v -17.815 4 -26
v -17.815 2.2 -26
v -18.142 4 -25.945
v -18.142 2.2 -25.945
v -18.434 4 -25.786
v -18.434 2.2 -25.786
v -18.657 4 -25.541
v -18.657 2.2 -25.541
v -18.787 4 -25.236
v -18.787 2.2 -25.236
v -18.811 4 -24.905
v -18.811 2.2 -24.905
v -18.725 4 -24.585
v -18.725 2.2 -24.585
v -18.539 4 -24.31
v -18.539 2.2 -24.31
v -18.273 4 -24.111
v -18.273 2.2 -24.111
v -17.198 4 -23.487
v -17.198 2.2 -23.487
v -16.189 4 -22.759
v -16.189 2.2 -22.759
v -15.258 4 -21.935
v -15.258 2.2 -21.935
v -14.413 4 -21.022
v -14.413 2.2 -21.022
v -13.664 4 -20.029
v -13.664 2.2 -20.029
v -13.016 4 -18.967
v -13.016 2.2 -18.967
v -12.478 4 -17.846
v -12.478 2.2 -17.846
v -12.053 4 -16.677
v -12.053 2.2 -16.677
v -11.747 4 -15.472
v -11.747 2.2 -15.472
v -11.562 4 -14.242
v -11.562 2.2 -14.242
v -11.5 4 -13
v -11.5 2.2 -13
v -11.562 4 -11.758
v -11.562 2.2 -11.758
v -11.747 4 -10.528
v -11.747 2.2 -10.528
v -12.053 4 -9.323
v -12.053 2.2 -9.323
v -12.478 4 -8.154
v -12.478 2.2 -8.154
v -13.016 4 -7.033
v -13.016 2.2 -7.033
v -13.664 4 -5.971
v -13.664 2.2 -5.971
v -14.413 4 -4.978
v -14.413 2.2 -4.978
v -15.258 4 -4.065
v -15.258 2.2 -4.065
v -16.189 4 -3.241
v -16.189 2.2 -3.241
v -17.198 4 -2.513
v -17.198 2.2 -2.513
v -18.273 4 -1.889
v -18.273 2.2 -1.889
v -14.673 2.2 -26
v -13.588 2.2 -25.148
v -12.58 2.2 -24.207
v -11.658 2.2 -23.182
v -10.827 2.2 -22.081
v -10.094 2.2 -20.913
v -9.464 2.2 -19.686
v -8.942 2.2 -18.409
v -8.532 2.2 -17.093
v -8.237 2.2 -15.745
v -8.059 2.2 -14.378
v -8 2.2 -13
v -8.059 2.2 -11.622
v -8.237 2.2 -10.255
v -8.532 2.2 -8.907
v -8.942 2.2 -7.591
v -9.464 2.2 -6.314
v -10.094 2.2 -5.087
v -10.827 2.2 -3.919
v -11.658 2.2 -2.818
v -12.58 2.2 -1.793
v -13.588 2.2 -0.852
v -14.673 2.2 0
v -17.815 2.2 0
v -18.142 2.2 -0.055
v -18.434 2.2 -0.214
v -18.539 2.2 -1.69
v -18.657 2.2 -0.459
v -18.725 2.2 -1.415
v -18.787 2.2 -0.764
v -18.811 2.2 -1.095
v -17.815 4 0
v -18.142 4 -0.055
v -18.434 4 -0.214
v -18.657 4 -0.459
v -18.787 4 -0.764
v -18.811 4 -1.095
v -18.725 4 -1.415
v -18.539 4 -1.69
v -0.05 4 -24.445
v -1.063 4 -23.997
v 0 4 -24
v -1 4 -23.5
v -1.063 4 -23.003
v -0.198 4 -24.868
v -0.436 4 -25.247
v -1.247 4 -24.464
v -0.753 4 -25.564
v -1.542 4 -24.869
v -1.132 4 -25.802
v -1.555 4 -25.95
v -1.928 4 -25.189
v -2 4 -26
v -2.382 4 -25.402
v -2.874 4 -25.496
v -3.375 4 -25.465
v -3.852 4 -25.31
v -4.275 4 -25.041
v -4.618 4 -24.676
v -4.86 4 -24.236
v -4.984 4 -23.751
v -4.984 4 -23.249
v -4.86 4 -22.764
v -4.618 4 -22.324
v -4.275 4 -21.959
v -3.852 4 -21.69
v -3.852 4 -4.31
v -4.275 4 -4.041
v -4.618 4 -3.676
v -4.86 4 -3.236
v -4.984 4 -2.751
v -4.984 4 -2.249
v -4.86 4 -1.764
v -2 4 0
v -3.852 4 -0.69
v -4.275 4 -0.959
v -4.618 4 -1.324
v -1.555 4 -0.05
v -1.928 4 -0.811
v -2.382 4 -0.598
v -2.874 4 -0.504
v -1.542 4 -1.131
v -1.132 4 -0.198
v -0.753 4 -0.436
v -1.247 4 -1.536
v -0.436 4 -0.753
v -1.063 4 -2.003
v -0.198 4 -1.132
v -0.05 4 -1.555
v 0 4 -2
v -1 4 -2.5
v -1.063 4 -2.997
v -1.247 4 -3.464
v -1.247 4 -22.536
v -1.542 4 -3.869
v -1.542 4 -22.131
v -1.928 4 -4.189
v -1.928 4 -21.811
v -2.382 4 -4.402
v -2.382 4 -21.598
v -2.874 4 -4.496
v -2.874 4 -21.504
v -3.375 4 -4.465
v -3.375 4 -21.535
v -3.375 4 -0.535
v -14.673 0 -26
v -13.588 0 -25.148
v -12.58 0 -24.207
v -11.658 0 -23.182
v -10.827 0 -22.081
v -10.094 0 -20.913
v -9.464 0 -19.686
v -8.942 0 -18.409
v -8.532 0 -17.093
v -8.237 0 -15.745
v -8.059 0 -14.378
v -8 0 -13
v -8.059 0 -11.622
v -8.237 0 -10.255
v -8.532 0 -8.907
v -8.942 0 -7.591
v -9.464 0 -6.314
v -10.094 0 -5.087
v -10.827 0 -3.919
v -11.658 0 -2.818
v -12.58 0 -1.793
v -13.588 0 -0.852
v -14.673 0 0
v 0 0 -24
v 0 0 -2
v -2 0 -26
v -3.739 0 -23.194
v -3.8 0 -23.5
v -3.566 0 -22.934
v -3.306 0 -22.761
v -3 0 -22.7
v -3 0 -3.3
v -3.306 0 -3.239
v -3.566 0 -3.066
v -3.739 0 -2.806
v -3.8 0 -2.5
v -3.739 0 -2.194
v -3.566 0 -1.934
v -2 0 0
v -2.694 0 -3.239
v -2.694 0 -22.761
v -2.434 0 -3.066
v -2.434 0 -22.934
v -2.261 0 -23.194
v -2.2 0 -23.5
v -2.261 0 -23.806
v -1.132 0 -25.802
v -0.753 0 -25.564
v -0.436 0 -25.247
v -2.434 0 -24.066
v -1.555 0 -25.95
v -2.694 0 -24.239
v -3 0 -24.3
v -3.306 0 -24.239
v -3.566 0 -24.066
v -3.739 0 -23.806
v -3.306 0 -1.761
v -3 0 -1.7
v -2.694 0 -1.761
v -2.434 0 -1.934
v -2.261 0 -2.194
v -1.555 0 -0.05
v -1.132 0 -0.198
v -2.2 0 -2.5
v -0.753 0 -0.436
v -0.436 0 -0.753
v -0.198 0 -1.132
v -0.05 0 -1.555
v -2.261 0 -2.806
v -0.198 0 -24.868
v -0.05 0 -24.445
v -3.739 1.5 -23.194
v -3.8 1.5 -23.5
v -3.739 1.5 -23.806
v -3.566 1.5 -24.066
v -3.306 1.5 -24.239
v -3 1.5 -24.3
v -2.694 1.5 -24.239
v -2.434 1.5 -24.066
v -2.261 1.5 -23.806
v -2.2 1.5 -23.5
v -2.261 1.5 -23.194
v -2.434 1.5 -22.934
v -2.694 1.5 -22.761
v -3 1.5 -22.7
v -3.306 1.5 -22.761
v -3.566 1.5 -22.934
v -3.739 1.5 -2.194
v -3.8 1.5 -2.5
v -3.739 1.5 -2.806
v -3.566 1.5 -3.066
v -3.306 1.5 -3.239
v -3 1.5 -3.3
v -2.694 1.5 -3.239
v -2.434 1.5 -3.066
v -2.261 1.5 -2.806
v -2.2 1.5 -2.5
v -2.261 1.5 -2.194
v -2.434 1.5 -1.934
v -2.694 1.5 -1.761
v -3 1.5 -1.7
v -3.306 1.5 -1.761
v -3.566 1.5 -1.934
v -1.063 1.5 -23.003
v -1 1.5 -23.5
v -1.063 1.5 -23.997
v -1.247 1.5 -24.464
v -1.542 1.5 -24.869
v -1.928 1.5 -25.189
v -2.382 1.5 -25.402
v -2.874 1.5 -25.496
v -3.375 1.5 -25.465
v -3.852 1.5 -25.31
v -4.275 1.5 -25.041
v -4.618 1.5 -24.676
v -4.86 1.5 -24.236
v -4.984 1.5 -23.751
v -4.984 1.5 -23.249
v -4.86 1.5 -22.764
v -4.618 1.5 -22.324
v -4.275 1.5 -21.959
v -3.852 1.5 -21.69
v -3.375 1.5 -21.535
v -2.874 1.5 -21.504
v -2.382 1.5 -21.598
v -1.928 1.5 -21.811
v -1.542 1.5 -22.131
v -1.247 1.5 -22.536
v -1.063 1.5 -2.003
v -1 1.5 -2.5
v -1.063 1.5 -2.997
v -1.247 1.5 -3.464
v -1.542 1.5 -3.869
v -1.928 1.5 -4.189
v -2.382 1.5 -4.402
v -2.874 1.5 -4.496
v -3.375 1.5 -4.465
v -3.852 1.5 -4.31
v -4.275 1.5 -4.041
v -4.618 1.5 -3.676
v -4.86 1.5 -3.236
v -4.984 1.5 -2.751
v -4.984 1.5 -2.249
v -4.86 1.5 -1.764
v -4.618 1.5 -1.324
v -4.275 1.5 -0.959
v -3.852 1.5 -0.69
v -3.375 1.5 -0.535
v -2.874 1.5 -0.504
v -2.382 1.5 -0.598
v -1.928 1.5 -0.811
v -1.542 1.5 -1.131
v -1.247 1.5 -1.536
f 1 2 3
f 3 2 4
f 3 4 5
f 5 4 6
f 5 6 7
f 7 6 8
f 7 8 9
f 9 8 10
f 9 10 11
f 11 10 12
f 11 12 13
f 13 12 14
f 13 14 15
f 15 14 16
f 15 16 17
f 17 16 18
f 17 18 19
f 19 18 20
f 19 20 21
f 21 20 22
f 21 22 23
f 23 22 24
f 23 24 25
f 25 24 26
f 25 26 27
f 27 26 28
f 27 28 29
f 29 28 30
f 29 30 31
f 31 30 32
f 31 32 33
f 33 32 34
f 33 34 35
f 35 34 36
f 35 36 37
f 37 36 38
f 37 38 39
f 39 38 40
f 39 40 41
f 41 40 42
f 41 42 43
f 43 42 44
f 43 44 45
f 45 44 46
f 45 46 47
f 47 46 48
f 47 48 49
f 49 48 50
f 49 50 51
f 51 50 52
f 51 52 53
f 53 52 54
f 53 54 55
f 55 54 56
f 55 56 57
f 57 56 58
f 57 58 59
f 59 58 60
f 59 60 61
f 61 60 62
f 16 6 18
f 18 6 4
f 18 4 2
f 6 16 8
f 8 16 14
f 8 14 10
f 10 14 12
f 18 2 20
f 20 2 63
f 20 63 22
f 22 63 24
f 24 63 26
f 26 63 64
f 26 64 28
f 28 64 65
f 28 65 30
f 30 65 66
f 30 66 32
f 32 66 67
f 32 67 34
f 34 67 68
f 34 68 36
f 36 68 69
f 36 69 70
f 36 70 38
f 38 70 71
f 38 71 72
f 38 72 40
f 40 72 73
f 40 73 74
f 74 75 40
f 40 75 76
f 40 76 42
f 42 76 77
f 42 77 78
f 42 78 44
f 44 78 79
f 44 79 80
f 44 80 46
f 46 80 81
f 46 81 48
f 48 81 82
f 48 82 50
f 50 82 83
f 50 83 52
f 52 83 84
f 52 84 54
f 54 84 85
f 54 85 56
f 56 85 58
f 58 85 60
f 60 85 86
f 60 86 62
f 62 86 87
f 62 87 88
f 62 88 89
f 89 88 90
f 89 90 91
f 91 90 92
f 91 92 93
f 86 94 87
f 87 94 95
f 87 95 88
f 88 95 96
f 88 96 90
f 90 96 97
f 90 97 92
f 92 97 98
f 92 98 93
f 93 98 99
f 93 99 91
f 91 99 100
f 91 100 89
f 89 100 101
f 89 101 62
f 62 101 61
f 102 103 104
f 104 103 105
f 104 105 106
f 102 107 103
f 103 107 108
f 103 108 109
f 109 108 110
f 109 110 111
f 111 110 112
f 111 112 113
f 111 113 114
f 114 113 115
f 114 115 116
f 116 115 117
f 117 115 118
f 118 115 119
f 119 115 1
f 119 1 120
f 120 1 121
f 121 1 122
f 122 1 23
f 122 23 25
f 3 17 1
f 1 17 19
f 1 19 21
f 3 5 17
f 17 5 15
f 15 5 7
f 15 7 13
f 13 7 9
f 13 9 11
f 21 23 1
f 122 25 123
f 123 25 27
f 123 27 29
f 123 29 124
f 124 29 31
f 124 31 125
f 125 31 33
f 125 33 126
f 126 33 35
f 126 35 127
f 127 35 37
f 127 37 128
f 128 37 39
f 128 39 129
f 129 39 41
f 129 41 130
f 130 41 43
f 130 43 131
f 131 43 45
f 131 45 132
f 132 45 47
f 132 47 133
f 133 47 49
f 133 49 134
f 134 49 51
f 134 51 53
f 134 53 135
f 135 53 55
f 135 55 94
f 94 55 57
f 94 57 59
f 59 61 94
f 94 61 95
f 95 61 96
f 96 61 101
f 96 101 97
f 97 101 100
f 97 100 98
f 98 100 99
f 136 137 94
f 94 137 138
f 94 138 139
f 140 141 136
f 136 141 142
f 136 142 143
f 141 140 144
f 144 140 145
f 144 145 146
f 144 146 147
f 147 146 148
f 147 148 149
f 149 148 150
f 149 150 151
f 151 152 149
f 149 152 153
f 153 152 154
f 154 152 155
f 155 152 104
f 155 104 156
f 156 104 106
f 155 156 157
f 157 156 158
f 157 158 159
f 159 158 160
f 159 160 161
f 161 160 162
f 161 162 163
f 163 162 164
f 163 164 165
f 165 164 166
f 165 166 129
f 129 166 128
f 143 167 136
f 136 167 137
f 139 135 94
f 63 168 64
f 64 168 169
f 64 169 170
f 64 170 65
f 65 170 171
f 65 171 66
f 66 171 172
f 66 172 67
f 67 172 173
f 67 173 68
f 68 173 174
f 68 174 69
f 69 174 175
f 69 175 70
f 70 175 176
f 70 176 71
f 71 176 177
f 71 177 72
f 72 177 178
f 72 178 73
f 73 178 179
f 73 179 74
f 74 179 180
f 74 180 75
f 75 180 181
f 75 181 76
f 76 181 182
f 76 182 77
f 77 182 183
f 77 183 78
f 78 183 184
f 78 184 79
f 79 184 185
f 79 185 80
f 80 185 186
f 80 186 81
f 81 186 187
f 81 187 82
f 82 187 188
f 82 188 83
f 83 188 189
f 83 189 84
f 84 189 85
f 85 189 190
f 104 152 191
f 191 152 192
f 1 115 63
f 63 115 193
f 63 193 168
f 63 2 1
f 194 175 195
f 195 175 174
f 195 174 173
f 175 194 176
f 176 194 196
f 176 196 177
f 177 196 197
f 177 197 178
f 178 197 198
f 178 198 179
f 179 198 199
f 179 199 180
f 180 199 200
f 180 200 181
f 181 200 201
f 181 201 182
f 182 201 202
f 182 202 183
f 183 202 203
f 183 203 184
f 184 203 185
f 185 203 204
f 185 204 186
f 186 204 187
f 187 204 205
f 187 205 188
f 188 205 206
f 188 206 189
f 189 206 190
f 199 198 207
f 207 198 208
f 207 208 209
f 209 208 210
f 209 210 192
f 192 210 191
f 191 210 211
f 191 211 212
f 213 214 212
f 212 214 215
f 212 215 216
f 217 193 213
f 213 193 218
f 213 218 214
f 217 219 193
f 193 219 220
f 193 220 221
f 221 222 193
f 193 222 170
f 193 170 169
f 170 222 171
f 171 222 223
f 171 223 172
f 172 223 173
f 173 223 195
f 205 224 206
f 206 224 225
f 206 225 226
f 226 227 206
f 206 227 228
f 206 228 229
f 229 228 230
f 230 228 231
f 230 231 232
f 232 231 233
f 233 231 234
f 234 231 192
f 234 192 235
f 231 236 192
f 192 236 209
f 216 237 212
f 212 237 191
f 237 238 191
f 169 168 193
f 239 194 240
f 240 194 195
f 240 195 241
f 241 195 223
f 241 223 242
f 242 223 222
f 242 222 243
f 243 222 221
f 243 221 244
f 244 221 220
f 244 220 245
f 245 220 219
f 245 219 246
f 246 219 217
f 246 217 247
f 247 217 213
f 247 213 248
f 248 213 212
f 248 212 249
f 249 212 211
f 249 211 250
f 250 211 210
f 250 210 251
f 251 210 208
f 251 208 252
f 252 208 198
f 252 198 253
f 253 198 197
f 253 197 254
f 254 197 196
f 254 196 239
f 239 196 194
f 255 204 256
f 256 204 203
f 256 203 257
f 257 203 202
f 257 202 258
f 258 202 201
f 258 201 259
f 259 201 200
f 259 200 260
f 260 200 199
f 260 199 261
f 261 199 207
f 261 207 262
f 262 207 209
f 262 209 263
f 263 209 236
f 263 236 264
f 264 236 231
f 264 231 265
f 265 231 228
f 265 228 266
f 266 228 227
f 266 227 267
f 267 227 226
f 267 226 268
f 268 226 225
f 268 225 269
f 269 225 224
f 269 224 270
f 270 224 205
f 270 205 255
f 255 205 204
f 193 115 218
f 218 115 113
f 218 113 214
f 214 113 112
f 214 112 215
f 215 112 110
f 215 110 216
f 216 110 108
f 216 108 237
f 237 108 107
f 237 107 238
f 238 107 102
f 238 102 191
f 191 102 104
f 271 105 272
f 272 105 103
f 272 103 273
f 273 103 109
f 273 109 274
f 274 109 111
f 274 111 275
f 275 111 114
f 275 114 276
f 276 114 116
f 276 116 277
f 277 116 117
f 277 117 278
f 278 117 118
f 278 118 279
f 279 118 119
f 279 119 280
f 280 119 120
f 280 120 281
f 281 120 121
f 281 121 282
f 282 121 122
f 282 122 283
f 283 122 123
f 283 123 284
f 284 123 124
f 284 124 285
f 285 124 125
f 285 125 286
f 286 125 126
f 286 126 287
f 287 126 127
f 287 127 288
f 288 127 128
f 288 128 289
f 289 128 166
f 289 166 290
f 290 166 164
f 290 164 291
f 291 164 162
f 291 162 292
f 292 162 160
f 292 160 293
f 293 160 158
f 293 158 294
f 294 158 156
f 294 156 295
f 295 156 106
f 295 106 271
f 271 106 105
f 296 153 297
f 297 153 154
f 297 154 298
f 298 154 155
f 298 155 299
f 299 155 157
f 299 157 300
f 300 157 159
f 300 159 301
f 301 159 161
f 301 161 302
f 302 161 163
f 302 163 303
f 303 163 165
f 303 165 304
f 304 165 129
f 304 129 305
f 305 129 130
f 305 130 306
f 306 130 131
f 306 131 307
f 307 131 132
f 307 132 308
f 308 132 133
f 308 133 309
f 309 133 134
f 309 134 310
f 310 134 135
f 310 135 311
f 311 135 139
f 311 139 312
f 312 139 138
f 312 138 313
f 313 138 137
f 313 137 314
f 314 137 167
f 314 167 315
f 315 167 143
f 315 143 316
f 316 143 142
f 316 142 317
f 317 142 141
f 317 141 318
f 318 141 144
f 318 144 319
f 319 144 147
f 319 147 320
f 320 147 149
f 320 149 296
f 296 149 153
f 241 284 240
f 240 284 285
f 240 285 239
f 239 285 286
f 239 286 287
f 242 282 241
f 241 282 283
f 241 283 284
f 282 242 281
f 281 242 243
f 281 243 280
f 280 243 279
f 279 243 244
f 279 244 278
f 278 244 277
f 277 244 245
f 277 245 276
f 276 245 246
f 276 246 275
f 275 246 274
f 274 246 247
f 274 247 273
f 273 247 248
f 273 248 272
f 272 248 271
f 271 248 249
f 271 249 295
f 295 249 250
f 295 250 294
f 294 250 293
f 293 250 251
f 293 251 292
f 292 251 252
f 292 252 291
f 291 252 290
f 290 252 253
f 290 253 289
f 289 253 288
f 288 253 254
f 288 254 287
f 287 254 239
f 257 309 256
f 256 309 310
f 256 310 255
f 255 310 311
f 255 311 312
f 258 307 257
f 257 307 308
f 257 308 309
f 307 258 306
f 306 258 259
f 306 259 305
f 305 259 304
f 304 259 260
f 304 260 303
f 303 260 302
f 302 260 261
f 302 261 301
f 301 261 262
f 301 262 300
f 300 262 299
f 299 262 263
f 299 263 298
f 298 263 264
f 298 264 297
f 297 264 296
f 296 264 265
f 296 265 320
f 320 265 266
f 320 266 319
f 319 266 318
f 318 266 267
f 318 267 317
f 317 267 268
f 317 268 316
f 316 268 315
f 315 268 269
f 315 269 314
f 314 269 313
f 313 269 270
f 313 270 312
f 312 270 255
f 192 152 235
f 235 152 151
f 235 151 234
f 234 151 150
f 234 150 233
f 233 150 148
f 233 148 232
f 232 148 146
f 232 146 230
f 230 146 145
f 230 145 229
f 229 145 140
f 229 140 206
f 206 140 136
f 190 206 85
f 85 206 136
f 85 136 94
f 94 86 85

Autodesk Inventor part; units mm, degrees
ref_plane "YZ Plane" through (0, 0, 0) normal (1, 0, 0) x (0, 1, 0)
ref_plane "XZ Plane" through (0, 0, 0) normal (0, 1, 0) x (-1, 0, 0)
ref_plane "XY Plane" through (0, 0, 0) normal (0, 0, 1) x (1, 0, 0)
sketch "スケッチ1" plane through (0, 0, 0) normal (0, 1, 0) x (-1, 0, 0)
  line L0 (24, 0) -> (0, 0)
  line L1 (0, 0) -> (0, -26)
  line L2 (0, -26) -> (24, -26)
  line L3 (24, -26) -> (24, 0)
  circle A0 centre (24, -13) radius 13 construction
  circle A1 centre (24, -13) radius 12.5
  circle A2 centre (24, -13) radius 16
  point P0 (24, -25.5)
  point P1 (24, -0.5)
  point P2 (14.6726, 0)
  point P3 (14.6726, -26)
  dimension "d0" = 26
  dimension "d1" = 24
  dimension "d2" = 25
  dimension "d3" = 32
extrude "押し出し1" add sketch "スケッチ1" along normal blind 4 contours L3 A1 L2 A2 L0 | A2 L2 L1 L0 picked at (14.0879, -23.9339)
extrude "押し出し2" cut sketch "スケッチ1" along normal blind 2.2 contours L3 A1 L2 A2 L0 picked at (14.0879, -23.9339)
fillet "フィレット1" radius 1 4 edges at (-24, 3.1, -0.5) (-24, 3.1, 0) (-24, 3.1, -26) (-24, 3.1, -25.5)
sketch "スケッチ2" plane through (0, 4, 0) normal (0, 1, 0) x (1, 0, 0)
  circle A0 centre (-3, 2.5) radius 0.85 construction
  circle A1 centre (-3, 23.5) radius 0.85 construction
  circle A2 centre (-3, 2.5) radius 0.8
  circle A3 centre (-3, 23.5) radius 0.8
  point P0 (0, 0)
  dimension "d9" = 1.6
  dimension "d10" = 1.6
extrude "押し出し3" cut sketch "スケッチ2" against normal through all
sketch "スケッチ3" plane through (0, 4, 0) normal (0, 1, 0) x (1, 0, 0)
  circle A0 centre (-3, 2.5) radius 0.8 projected
  circle A1 centre (-3, 23.5) radius 0.8 projected
  circle A2 centre (-3, 2.5) radius 2
  circle A3 centre (-3, 23.5) radius 2
  point P0 (0, 0)
  dimension "d13" = 4
  dimension "d14" = 4
extrude "押し出し4" cut sketch "スケッチ3" against normal blind 2.5 contours A0 | A1 | A2 | A3
fillet "フィレット2" radius 2 2 edges at (0, 2, 0) (0, 2, -26)
properties part number "sholder_joint_cover"
